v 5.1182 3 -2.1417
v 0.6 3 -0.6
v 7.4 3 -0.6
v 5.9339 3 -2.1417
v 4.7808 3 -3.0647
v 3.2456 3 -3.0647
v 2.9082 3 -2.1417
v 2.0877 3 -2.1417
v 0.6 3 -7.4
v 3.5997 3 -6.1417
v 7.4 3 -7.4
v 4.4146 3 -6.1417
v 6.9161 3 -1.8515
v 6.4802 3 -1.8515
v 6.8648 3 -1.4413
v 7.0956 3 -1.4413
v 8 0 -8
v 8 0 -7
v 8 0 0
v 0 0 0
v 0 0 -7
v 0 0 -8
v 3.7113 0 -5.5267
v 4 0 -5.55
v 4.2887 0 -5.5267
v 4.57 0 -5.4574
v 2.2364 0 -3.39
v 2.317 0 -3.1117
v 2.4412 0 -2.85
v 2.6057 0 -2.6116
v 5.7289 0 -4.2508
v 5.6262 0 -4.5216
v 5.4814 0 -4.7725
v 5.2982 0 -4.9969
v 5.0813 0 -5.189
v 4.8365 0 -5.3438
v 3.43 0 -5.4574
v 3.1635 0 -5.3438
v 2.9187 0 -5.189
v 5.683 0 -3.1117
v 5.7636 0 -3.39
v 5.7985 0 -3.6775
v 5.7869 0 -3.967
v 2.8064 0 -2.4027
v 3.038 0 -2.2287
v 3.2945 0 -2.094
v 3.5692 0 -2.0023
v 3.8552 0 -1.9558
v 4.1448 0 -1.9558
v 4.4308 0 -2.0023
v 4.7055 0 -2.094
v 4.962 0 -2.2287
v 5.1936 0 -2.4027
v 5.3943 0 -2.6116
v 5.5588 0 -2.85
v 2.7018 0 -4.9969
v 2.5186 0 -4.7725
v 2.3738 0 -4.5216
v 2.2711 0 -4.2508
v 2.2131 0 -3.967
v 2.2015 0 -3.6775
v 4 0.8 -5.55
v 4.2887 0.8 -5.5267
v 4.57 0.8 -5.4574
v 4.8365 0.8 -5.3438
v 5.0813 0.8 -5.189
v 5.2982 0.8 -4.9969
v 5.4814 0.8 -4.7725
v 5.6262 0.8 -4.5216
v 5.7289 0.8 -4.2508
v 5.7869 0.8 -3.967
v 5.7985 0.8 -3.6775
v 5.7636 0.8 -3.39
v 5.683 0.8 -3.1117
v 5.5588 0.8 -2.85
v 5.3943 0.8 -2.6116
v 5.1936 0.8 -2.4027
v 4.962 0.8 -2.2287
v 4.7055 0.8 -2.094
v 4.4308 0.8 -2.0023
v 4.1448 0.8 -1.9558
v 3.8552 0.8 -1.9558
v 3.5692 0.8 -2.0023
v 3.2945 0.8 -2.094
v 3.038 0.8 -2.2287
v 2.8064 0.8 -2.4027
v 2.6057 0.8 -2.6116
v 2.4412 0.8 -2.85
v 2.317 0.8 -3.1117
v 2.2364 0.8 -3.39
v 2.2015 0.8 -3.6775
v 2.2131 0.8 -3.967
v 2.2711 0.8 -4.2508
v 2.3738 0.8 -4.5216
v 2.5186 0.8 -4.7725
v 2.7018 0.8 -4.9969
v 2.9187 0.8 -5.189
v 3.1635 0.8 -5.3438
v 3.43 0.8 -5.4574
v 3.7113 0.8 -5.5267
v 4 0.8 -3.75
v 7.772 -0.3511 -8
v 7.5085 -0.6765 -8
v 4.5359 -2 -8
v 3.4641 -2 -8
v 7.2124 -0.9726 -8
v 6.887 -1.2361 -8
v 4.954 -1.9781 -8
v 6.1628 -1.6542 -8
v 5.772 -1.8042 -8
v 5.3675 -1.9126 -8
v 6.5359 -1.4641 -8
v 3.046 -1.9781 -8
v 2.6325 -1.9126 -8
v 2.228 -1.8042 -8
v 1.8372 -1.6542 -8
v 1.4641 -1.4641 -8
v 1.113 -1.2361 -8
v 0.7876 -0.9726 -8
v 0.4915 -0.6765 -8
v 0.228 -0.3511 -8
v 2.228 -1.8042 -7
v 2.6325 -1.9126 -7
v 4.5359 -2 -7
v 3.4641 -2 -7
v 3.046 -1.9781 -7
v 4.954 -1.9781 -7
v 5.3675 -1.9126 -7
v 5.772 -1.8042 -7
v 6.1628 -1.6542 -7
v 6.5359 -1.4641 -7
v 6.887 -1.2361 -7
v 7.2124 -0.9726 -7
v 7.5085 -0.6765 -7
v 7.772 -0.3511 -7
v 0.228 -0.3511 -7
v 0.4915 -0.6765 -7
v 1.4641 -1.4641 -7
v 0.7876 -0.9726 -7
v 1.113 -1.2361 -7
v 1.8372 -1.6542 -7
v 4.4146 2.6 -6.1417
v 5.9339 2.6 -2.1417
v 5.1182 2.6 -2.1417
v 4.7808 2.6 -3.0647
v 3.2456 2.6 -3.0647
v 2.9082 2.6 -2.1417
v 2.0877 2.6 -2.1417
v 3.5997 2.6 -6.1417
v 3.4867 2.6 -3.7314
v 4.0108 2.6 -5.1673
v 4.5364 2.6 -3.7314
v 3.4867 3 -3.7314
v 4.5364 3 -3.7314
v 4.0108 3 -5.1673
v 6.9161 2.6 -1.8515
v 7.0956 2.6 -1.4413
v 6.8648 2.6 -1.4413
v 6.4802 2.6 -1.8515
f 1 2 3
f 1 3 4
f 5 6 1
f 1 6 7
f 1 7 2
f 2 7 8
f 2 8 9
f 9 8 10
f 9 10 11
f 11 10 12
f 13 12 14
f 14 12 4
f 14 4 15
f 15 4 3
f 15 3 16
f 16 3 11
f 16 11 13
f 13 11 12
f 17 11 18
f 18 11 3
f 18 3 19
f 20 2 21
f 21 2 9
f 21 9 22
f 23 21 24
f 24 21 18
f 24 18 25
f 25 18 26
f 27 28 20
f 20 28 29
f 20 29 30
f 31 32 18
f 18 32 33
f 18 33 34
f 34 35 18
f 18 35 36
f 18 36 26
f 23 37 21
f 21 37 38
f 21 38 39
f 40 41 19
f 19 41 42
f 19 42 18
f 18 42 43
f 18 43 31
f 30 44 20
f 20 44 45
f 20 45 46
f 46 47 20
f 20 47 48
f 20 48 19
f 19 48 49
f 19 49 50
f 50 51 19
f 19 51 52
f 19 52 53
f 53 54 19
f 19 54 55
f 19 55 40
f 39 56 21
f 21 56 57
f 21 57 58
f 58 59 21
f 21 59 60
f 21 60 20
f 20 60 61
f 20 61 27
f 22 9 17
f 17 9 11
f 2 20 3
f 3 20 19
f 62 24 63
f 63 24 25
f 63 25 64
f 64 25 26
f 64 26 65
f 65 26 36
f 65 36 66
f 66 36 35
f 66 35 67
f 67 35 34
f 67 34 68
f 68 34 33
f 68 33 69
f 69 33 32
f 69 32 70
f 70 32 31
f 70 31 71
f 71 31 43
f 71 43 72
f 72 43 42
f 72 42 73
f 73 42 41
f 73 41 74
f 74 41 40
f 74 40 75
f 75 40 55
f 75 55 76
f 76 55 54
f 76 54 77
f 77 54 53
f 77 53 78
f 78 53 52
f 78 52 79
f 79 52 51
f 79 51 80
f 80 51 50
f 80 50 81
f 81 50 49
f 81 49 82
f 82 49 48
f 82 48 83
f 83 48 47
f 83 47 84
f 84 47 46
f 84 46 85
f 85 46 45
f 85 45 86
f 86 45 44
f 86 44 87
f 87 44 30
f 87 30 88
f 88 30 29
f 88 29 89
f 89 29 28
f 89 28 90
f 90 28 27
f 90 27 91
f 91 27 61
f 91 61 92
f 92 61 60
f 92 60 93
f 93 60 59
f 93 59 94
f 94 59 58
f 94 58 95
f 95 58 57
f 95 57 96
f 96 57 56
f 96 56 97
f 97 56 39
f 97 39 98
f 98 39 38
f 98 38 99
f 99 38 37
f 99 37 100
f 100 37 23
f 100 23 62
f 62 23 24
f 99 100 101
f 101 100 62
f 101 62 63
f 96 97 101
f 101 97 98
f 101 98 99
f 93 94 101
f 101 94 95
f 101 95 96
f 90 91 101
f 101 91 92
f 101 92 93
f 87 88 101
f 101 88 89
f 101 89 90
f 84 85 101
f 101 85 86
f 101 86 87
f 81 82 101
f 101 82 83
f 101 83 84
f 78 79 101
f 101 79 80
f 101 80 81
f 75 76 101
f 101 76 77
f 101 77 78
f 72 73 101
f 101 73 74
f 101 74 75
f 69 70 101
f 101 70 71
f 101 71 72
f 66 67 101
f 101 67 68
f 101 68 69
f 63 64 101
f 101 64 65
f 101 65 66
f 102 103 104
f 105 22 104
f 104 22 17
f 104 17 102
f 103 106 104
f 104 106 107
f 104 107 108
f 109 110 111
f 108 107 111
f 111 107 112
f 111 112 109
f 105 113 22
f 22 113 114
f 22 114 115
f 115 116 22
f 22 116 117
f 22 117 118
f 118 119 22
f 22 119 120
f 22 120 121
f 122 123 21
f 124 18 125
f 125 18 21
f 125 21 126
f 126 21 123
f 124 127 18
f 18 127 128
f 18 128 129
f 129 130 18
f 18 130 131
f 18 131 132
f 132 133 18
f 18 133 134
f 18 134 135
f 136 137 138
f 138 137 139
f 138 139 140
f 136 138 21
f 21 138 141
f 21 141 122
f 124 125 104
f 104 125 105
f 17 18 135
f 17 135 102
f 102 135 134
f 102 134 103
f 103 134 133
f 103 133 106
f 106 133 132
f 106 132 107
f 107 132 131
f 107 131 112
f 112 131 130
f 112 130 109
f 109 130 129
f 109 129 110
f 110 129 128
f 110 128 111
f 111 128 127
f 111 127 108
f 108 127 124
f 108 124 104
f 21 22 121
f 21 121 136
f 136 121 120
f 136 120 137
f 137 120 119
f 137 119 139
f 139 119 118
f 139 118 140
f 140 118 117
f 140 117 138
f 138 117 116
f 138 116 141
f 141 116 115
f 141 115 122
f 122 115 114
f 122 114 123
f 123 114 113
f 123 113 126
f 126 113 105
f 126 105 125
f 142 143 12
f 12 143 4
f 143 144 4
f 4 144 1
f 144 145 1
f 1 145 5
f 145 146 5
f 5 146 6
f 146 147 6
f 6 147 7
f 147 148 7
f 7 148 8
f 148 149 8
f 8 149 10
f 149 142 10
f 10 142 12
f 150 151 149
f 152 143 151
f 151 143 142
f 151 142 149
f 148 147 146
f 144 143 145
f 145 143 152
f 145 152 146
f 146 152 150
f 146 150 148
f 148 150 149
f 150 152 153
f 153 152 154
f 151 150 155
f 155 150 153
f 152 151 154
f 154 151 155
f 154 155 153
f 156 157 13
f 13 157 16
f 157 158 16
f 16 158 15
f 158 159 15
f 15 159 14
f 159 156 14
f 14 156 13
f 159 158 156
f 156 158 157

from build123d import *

# Parameters (mm, degrees)
SKETCH1_W               = 8
SKETCH1_H               = 8
BOSS_EXTRUDE1_DEPTH     = 3
CUT_EXTRUDE1_DEPTH      = 12.704699911
CUT_EXTRUDE1_DEPTH_BACK = 12.704699911
CUT_EXTRUDE2_DEPTH      = 11
SKETCH4_R               = 1.8
CUT_EXTRUDE3_DEPTH      = 0.8
SKETCH5_W               = 8
SKETCH5_H               = 1
BOSS_EXTRUDE2_DEPTH     = 2
FILLET1_R               = 4
CUT_EXTRUDE4_DEPTH      = 0.4
CUT_EXTRUDE5_DEPTH      = 0.4


with BuildPart() as part:
    # Sketch1 → Boss-Extrude1 (new body)
    with BuildSketch(Plane(origin=(0, 0, 0), x_dir=(1, 0, 0), z_dir=(0, 1, 0))):
        with Locations((4, 4)):
            Rectangle(SKETCH1_W, SKETCH1_H)
    extrude(amount=BOSS_EXTRUDE1_DEPTH)

    # Sketch2 → Cut-Extrude1 (cut, two sides: drawn at the far end of the back side and taken through both)
    with BuildSketch(Plane.XY.offset(-CUT_EXTRUDE1_DEPTH_BACK)):
        Polygon((0, 0), (0.6, 3), (0, 3), align=None)
        Polygon((8, 0), (7.4, 3), (8, 3), align=None)
    extrude(amount=CUT_EXTRUDE1_DEPTH + CUT_EXTRUDE1_DEPTH_BACK, mode=Mode.SUBTRACT)

    # Sketch3 → Cut-Extrude2 (cut)
    with BuildSketch(Plane(origin=(0, 0, 0), x_dir=(0, 0, -1), z_dir=(1, 0, 0))):
        Polygon((0, 0), (0.6, 3), (0, 3), align=None)
        Polygon((8, 3), (7.4, 3), (8, 0), align=None)
    extrude(amount=CUT_EXTRUDE2_DEPTH, mode=Mode.SUBTRACT)

    # Sketch4 → Cut-Extrude3 (cut)
    with BuildSketch(Plane.XZ):
        with Locations(Location((4, -3.75, 0), (0, 0, 270))):
            Circle(SKETCH4_R)
    extrude(amount=-CUT_EXTRUDE3_DEPTH, mode=Mode.SUBTRACT)

    # Sketch5 → Boss-Extrude2 (add)
    with BuildSketch(Plane.XZ):
        with Locations((4, -7.5)):
            Rectangle(SKETCH5_W, SKETCH5_H)
    extrude(amount=BOSS_EXTRUDE2_DEPTH)

    # Fillet1
    # the kernel refuses this fillet: 4 mm, written as the material it takes off along each edge
    with BuildSketch(Plane(origin=(8, -2, -16.660254038), x_dir=(0, 1, 0), z_dir=(0, 0, 1)), Plane(origin=(0, -2, 1.660254038), x_dir=(0, 1, 0), z_dir=(0, 0, -1))) as fillet1_piece_1:
        with BuildLine():
            CenterArc((4, 3.464101615), FILLET1_R, 180, 60)
            Line((0, 3.464101615), (-0.08, 3.464101615))
            Line((-0.08, 3.464101615), (-0.08, 0))
            Line((-0.08, 0), (0, -0.08))
            ThreePointArc((0, -0.08), (1, -0.08), (1.96, -0.069282032))
            Line((1.96, -0.069282032), (2, 0))
        make_face()
    extrude(amount=18.320508076, mode=Mode.SUBTRACT)

    # Sketch6 → Cut-Extrude4 (cut)
    with BuildSketch(Plane(origin=(0, 3, 0), x_dir=(1, 0, 0), z_dir=(0, 1, 0))):
        Polygon((5.933857302, 2.141652068), (5.118152174, 2.141652068), (4.780812431, 3.064728992), (3.24555602, 3.064728992), (2.908216277, 2.141652068), (2.087703456, 2.141652068), (3.599722687, 6.141652068), (4.414626533, 6.141652068), align=None)
        Polygon((4.536421405, 3.731395658), (4.010780379, 5.167293094), (3.486741918, 3.731395658), align=None, mode=Mode.SUBTRACT)
    extrude(amount=-CUT_EXTRUDE4_DEPTH, mode=Mode.SUBTRACT)

    # Sketch7 → Cut-Extrude5 (cut)
    with BuildSketch(Plane(origin=(0, 3, 0), x_dir=(1, 0, 0), z_dir=(0, 1, 0))):
        Polygon((7.095591712, 1.44126633), (6.864822481, 1.44126633), (6.480207097, 1.85152274), (6.916104533, 1.85152274), align=None)
    extrude(amount=-CUT_EXTRUDE5_DEPTH, mode=Mode.SUBTRACT)


solid = part.part
